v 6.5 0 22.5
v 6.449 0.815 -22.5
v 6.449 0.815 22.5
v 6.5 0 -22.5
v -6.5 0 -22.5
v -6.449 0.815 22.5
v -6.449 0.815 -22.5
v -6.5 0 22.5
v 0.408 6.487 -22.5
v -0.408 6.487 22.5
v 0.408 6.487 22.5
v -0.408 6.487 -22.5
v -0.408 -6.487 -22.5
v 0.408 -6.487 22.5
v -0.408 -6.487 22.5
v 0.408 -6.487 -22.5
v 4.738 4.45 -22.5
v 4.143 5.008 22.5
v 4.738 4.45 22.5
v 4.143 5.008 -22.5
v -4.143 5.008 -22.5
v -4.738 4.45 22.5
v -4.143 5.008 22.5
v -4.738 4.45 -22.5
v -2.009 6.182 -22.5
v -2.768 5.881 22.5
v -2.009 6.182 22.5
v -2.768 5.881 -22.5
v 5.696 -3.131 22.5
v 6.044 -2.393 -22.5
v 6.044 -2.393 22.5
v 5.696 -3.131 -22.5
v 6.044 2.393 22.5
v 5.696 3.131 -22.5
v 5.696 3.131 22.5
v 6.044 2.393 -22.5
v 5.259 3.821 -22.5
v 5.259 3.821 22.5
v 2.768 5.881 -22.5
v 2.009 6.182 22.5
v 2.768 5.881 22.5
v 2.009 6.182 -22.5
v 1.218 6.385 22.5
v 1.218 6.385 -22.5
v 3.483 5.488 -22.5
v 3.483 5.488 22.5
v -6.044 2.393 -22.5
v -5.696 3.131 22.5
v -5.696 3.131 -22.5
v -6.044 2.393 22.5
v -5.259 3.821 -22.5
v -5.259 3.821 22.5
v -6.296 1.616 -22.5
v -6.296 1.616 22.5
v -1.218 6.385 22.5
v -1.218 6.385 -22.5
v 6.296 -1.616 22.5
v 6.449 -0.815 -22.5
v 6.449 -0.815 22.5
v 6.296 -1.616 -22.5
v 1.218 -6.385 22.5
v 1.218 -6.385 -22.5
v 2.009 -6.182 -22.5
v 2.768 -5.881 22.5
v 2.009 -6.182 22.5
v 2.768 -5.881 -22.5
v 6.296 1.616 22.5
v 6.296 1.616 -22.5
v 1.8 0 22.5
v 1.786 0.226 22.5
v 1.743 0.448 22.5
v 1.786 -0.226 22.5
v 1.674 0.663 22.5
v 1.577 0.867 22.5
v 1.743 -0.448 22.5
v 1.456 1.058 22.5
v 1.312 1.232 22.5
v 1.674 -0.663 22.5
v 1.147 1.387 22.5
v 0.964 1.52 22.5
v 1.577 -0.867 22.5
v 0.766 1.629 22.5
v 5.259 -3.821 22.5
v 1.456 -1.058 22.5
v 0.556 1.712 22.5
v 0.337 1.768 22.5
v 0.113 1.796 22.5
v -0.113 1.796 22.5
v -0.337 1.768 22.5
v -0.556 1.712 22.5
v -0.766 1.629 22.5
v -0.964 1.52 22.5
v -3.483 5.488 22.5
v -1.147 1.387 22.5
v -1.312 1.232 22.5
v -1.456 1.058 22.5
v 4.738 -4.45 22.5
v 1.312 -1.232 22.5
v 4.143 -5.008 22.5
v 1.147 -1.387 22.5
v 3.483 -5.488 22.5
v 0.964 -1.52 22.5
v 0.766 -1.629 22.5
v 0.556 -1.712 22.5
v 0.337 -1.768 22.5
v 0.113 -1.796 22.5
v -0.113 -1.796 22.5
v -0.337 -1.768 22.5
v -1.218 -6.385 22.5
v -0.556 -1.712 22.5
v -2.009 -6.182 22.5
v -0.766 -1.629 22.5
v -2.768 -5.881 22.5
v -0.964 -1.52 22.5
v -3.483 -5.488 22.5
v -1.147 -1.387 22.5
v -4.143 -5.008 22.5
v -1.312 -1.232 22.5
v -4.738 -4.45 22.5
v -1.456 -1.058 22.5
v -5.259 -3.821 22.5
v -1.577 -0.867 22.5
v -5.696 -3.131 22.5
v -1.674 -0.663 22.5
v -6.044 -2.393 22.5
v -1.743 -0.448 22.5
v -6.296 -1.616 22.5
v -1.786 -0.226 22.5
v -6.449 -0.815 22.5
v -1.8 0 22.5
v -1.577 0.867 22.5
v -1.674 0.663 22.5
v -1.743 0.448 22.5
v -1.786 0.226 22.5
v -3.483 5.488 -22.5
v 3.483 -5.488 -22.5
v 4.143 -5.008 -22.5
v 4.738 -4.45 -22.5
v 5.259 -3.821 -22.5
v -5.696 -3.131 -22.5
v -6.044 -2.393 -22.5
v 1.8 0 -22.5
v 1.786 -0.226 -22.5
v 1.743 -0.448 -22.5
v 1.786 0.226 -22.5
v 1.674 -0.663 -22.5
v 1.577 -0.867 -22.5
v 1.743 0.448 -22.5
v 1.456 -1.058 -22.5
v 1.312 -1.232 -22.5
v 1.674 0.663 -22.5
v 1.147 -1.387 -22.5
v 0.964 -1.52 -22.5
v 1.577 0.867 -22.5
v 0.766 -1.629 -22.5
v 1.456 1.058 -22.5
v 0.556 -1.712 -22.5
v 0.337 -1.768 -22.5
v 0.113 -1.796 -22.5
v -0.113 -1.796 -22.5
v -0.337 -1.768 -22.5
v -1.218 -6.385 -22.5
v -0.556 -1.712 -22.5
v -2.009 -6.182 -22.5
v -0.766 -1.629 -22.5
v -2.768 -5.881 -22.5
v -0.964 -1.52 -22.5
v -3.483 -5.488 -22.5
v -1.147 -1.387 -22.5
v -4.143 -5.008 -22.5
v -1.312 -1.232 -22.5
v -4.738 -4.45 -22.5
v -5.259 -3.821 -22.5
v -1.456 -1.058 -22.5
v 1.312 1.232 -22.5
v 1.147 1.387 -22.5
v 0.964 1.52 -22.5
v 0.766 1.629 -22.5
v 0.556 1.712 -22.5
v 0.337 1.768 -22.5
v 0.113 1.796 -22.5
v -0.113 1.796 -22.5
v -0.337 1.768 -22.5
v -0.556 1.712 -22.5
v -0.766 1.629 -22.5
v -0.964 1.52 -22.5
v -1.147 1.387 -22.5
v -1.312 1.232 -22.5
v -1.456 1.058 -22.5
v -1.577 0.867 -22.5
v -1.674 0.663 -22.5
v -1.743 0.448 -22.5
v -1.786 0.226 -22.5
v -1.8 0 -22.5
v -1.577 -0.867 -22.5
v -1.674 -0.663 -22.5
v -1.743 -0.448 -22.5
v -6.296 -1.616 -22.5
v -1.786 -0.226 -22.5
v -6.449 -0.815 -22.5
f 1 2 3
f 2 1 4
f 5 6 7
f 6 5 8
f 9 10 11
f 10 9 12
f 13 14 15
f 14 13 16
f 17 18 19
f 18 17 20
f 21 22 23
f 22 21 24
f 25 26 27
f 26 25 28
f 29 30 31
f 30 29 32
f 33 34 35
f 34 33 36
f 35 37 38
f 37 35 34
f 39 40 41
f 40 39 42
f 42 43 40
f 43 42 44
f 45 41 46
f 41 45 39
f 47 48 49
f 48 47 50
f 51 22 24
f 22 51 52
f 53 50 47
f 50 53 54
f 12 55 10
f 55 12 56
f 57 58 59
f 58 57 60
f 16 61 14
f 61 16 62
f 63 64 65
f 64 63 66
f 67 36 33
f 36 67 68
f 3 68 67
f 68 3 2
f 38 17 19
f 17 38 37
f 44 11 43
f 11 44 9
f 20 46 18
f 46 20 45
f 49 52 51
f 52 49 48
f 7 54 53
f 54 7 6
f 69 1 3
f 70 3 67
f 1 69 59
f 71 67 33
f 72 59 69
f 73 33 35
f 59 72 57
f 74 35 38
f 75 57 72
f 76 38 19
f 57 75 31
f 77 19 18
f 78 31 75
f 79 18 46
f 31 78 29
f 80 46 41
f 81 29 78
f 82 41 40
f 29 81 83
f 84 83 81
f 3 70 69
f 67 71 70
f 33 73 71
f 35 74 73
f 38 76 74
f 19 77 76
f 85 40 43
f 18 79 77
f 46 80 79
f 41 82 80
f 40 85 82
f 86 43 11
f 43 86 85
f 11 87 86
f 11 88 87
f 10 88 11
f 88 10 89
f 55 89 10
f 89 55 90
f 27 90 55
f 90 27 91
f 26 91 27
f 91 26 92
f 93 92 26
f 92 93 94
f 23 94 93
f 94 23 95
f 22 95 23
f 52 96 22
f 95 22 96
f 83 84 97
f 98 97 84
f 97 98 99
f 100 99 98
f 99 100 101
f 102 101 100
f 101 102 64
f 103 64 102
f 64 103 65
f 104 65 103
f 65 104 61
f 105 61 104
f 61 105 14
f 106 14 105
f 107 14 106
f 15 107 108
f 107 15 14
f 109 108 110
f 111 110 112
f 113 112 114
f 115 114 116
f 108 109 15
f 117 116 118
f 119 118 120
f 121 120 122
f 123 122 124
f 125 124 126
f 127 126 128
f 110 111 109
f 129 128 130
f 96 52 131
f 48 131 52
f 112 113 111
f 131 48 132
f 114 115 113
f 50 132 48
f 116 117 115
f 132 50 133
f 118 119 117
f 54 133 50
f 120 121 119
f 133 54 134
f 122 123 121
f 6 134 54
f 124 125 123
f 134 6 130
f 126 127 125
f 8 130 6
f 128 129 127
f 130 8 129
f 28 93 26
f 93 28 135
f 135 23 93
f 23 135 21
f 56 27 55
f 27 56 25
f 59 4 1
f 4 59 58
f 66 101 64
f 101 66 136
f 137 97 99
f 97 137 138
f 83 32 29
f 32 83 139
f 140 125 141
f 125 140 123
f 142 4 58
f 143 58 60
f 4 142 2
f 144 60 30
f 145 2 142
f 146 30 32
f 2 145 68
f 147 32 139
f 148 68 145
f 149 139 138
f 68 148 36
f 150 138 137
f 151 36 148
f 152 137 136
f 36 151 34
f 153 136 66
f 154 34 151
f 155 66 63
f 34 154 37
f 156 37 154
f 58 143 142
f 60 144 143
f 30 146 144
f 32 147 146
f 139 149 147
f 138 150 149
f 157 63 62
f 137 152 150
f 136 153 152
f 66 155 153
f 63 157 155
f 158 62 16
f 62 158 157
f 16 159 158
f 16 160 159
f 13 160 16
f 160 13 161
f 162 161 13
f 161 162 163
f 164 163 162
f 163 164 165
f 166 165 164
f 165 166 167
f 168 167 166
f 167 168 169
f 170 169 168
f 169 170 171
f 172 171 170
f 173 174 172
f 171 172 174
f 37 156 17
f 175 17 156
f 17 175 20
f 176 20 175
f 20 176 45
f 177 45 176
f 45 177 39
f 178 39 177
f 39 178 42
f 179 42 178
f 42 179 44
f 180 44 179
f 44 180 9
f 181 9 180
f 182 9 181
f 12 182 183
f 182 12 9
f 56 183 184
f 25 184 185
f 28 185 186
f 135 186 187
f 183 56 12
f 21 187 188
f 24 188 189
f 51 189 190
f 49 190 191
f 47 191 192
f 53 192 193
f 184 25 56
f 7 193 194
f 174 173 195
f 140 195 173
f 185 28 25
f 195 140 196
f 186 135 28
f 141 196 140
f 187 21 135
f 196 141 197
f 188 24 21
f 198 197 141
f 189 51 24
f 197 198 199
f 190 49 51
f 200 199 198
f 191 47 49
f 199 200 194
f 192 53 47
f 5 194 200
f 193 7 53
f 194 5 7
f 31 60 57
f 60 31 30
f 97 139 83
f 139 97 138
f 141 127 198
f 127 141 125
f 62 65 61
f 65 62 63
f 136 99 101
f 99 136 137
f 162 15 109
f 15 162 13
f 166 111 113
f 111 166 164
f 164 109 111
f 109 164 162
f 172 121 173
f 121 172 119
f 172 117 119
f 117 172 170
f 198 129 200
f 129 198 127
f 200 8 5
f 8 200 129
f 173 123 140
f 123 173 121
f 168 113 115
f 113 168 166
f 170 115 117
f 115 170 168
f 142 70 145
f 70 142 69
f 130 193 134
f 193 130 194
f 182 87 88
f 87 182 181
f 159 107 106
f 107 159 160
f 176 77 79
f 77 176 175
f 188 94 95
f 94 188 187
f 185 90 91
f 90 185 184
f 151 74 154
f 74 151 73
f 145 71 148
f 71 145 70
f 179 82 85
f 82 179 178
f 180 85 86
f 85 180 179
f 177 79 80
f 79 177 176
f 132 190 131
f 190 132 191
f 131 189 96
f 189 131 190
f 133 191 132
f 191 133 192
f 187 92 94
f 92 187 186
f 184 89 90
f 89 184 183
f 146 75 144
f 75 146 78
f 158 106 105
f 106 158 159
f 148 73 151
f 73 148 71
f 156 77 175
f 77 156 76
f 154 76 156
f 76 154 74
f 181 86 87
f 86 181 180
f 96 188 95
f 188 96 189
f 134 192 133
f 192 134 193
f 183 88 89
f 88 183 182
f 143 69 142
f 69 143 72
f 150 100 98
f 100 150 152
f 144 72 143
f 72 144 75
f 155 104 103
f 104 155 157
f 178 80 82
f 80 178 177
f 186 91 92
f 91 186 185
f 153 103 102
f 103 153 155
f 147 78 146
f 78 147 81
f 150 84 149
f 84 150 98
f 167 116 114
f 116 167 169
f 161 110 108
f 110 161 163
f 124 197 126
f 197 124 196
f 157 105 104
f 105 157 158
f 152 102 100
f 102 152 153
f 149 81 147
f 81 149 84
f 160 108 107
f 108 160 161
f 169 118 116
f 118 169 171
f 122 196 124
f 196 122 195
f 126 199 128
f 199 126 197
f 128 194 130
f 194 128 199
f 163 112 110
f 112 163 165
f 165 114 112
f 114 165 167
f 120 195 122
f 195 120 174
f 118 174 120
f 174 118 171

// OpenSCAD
$fn = 50;


difference() {
	union() {
		translate(v = [0, 0, -22.5000000000]) {
			cylinder(h = 45, r = 6.5000000000);
		}
	}
	union() {
		translate(v = [0, 0, -100.0000000000]) {
			cylinder(h = 200, r = 1.8000000000);
		}
	}
}
